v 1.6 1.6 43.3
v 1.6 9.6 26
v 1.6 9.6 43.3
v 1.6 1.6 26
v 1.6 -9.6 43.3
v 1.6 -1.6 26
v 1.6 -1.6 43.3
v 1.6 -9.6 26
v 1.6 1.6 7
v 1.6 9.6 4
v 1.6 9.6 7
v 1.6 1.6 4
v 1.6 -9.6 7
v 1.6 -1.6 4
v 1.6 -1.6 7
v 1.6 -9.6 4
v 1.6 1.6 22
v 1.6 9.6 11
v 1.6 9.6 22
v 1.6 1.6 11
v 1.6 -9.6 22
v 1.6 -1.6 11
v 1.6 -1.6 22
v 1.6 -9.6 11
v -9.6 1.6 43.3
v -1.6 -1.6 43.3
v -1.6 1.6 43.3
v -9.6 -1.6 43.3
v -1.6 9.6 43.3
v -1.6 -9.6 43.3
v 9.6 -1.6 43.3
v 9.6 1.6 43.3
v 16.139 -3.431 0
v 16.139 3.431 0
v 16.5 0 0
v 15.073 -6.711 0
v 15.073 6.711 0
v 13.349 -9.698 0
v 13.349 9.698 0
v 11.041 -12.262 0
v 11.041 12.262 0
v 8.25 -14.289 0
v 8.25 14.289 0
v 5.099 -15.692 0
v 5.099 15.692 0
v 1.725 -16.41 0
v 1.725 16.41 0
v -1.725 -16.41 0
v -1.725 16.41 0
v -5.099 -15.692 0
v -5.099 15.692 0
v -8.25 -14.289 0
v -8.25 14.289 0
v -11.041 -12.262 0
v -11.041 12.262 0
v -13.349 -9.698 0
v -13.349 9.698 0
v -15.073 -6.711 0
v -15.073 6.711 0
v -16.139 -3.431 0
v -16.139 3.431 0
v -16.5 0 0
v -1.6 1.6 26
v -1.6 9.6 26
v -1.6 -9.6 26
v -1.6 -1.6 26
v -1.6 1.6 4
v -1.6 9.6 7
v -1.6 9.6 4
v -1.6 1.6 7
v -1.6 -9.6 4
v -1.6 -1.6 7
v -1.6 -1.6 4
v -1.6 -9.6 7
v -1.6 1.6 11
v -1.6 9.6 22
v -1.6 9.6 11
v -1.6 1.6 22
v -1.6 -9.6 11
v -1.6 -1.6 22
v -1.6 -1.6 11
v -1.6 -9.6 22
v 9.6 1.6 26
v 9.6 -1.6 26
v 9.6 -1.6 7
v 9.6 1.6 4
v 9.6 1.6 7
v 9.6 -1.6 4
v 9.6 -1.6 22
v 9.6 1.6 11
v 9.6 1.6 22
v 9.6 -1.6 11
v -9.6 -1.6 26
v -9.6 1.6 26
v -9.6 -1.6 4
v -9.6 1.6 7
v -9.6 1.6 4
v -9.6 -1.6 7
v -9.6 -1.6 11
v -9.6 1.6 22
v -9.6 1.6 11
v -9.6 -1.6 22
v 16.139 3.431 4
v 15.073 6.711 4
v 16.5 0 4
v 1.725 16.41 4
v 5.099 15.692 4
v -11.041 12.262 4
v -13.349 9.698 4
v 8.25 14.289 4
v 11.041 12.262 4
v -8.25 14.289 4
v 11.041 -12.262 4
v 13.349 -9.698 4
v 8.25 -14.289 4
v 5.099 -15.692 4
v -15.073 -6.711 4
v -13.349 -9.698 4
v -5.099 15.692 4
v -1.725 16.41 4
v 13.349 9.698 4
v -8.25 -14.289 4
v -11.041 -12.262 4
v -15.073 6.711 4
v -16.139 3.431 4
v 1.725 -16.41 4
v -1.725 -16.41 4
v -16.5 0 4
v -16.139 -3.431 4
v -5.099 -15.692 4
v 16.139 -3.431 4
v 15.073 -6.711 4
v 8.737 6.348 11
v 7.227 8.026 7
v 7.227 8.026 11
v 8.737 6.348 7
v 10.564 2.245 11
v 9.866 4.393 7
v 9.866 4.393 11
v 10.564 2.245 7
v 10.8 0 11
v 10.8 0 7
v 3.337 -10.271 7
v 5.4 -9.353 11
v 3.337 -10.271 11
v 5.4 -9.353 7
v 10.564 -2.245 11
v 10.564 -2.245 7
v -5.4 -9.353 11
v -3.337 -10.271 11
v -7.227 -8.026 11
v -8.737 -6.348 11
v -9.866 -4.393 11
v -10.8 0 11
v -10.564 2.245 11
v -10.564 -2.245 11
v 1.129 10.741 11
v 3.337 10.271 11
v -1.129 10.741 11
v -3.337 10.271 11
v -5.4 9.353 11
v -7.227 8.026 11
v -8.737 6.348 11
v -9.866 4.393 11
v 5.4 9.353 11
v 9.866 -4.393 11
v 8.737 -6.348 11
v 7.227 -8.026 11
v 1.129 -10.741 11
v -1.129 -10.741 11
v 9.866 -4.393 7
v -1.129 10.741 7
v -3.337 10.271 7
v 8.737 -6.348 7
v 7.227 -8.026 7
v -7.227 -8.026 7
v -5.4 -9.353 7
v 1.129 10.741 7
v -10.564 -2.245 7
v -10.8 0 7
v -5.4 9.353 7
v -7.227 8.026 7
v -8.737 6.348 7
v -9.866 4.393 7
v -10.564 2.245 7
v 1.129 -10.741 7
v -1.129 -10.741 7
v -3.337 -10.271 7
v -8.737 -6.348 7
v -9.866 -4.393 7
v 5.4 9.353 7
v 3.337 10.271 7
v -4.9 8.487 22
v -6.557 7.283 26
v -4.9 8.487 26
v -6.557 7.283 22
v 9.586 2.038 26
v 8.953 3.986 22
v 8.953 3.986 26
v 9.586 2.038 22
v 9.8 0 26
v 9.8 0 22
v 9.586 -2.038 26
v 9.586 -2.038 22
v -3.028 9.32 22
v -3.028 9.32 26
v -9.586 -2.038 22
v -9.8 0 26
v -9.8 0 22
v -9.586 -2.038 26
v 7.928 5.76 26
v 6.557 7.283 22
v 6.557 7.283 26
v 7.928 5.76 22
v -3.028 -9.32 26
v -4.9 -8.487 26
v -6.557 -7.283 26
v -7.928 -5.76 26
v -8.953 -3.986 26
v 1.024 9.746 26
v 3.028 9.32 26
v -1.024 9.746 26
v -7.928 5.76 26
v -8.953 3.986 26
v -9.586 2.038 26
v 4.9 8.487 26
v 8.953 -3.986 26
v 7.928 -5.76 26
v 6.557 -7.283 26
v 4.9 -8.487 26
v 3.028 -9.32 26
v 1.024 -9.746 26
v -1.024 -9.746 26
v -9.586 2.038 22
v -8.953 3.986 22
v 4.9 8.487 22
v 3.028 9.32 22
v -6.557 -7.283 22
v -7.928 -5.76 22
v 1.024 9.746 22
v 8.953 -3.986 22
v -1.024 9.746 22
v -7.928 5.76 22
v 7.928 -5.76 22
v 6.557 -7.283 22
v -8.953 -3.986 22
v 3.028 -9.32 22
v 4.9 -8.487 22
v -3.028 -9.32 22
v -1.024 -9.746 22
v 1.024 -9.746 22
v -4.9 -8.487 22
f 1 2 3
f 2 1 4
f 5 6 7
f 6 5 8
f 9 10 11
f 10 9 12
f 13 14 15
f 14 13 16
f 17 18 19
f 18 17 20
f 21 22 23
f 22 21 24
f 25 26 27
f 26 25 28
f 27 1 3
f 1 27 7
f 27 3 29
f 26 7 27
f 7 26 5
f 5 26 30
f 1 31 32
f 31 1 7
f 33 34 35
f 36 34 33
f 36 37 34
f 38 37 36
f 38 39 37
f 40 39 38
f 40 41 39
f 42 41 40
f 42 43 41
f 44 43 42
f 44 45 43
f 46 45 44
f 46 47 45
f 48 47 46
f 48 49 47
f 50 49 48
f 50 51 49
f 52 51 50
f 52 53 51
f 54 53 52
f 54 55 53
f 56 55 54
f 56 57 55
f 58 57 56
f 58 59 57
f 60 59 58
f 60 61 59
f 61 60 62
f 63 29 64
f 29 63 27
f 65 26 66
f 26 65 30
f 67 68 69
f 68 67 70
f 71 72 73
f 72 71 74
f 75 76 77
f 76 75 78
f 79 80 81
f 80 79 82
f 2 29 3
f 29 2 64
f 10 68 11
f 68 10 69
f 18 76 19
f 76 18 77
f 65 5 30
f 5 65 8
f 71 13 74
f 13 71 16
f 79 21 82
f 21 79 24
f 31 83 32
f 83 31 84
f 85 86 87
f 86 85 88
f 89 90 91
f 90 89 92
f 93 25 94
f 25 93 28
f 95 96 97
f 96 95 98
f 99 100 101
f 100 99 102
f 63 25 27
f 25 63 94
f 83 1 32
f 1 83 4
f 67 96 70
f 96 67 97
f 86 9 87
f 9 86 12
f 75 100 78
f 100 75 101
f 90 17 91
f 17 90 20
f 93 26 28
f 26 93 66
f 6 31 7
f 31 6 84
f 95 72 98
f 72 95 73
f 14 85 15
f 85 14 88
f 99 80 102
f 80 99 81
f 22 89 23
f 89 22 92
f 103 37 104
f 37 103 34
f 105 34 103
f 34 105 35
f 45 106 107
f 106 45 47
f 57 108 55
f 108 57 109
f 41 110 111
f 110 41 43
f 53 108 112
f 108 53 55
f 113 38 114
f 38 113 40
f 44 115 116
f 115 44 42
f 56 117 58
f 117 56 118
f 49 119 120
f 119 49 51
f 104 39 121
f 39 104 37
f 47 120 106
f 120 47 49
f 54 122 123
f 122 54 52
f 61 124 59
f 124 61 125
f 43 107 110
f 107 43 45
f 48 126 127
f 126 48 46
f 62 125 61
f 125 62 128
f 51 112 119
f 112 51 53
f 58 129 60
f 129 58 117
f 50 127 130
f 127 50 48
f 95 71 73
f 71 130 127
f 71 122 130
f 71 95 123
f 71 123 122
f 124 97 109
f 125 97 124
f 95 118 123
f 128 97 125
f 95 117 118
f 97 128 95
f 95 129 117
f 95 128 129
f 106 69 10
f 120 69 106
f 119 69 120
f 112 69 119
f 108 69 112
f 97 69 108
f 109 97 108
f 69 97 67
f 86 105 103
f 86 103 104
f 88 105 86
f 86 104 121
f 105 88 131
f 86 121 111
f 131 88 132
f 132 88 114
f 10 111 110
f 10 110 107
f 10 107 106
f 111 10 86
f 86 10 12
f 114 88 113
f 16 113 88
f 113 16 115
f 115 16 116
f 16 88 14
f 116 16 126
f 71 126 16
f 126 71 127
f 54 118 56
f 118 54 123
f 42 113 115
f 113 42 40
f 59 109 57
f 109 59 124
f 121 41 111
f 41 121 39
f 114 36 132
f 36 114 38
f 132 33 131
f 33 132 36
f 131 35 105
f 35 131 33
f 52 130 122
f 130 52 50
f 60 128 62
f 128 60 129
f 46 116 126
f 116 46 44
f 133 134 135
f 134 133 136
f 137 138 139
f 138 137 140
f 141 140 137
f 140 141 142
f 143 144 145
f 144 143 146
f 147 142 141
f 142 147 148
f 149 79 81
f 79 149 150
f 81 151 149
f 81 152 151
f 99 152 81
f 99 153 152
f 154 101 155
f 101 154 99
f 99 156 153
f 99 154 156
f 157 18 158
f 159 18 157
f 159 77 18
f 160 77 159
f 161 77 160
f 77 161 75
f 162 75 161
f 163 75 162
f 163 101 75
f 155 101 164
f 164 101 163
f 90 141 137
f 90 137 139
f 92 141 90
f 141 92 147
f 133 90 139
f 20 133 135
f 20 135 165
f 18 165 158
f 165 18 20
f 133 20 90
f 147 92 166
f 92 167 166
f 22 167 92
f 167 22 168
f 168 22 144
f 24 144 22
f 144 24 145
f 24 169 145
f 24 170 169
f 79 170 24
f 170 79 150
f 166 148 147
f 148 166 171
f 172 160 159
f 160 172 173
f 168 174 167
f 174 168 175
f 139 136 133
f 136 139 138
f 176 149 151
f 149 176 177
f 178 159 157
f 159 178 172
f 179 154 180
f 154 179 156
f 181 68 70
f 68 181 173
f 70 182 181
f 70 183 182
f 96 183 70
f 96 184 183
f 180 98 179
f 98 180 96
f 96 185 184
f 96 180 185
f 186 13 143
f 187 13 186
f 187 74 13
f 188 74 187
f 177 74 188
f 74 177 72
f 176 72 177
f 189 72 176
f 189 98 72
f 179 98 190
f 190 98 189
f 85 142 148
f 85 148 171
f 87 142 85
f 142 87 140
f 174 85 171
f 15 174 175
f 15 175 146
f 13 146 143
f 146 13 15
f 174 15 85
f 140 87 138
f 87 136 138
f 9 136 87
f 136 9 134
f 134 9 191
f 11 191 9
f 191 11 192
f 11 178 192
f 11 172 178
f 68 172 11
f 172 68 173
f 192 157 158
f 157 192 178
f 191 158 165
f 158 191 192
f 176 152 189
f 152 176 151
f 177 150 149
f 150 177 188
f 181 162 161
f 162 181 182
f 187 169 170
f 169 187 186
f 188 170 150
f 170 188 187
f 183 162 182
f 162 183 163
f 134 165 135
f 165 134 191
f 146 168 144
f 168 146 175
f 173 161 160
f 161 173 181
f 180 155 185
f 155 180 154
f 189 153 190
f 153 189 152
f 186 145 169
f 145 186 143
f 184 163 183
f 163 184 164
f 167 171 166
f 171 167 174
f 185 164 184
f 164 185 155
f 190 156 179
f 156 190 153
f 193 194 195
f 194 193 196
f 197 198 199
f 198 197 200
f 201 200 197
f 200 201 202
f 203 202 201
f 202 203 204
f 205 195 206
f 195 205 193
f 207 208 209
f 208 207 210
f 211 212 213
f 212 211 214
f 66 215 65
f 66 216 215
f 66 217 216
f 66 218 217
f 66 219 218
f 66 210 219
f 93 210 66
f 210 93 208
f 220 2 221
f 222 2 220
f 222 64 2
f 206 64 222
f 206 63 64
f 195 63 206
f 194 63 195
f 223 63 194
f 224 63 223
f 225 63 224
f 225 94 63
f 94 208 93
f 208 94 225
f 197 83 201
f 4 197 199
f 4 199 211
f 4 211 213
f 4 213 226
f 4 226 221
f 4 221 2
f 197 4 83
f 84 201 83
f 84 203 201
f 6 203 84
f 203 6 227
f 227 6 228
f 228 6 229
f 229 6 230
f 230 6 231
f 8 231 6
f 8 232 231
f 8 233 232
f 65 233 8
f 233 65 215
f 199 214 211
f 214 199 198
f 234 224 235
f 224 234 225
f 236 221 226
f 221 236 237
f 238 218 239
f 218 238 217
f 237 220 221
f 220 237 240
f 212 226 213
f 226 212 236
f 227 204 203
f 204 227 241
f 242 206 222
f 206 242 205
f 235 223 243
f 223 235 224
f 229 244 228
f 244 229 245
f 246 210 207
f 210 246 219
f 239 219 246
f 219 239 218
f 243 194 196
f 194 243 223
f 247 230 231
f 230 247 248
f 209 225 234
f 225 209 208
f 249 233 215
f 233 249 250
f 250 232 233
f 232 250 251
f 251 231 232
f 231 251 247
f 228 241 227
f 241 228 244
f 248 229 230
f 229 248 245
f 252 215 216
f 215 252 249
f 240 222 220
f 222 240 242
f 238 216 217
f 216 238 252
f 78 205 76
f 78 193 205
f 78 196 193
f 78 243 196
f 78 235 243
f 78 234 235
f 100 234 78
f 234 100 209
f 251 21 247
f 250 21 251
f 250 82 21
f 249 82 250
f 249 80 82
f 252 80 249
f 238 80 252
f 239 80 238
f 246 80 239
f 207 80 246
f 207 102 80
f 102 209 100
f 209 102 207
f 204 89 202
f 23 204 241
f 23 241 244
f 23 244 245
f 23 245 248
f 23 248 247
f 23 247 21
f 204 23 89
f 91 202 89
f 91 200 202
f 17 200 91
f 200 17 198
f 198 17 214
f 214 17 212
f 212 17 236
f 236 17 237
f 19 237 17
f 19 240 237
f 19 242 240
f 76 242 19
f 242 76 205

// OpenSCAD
translate([-3.2/2, -19.2/2])
cube([3.2, 19.2, 43.3]);
translate([-19.2/2, -3.2/2])
cube([19.2, 3.2, 43.3]);
cylinder(d=33, h=4);
translate([0,0,7])
cylinder(d=21.6, h=4);
translate([0,0,22])
cylinder(d=19.6, h=4);
